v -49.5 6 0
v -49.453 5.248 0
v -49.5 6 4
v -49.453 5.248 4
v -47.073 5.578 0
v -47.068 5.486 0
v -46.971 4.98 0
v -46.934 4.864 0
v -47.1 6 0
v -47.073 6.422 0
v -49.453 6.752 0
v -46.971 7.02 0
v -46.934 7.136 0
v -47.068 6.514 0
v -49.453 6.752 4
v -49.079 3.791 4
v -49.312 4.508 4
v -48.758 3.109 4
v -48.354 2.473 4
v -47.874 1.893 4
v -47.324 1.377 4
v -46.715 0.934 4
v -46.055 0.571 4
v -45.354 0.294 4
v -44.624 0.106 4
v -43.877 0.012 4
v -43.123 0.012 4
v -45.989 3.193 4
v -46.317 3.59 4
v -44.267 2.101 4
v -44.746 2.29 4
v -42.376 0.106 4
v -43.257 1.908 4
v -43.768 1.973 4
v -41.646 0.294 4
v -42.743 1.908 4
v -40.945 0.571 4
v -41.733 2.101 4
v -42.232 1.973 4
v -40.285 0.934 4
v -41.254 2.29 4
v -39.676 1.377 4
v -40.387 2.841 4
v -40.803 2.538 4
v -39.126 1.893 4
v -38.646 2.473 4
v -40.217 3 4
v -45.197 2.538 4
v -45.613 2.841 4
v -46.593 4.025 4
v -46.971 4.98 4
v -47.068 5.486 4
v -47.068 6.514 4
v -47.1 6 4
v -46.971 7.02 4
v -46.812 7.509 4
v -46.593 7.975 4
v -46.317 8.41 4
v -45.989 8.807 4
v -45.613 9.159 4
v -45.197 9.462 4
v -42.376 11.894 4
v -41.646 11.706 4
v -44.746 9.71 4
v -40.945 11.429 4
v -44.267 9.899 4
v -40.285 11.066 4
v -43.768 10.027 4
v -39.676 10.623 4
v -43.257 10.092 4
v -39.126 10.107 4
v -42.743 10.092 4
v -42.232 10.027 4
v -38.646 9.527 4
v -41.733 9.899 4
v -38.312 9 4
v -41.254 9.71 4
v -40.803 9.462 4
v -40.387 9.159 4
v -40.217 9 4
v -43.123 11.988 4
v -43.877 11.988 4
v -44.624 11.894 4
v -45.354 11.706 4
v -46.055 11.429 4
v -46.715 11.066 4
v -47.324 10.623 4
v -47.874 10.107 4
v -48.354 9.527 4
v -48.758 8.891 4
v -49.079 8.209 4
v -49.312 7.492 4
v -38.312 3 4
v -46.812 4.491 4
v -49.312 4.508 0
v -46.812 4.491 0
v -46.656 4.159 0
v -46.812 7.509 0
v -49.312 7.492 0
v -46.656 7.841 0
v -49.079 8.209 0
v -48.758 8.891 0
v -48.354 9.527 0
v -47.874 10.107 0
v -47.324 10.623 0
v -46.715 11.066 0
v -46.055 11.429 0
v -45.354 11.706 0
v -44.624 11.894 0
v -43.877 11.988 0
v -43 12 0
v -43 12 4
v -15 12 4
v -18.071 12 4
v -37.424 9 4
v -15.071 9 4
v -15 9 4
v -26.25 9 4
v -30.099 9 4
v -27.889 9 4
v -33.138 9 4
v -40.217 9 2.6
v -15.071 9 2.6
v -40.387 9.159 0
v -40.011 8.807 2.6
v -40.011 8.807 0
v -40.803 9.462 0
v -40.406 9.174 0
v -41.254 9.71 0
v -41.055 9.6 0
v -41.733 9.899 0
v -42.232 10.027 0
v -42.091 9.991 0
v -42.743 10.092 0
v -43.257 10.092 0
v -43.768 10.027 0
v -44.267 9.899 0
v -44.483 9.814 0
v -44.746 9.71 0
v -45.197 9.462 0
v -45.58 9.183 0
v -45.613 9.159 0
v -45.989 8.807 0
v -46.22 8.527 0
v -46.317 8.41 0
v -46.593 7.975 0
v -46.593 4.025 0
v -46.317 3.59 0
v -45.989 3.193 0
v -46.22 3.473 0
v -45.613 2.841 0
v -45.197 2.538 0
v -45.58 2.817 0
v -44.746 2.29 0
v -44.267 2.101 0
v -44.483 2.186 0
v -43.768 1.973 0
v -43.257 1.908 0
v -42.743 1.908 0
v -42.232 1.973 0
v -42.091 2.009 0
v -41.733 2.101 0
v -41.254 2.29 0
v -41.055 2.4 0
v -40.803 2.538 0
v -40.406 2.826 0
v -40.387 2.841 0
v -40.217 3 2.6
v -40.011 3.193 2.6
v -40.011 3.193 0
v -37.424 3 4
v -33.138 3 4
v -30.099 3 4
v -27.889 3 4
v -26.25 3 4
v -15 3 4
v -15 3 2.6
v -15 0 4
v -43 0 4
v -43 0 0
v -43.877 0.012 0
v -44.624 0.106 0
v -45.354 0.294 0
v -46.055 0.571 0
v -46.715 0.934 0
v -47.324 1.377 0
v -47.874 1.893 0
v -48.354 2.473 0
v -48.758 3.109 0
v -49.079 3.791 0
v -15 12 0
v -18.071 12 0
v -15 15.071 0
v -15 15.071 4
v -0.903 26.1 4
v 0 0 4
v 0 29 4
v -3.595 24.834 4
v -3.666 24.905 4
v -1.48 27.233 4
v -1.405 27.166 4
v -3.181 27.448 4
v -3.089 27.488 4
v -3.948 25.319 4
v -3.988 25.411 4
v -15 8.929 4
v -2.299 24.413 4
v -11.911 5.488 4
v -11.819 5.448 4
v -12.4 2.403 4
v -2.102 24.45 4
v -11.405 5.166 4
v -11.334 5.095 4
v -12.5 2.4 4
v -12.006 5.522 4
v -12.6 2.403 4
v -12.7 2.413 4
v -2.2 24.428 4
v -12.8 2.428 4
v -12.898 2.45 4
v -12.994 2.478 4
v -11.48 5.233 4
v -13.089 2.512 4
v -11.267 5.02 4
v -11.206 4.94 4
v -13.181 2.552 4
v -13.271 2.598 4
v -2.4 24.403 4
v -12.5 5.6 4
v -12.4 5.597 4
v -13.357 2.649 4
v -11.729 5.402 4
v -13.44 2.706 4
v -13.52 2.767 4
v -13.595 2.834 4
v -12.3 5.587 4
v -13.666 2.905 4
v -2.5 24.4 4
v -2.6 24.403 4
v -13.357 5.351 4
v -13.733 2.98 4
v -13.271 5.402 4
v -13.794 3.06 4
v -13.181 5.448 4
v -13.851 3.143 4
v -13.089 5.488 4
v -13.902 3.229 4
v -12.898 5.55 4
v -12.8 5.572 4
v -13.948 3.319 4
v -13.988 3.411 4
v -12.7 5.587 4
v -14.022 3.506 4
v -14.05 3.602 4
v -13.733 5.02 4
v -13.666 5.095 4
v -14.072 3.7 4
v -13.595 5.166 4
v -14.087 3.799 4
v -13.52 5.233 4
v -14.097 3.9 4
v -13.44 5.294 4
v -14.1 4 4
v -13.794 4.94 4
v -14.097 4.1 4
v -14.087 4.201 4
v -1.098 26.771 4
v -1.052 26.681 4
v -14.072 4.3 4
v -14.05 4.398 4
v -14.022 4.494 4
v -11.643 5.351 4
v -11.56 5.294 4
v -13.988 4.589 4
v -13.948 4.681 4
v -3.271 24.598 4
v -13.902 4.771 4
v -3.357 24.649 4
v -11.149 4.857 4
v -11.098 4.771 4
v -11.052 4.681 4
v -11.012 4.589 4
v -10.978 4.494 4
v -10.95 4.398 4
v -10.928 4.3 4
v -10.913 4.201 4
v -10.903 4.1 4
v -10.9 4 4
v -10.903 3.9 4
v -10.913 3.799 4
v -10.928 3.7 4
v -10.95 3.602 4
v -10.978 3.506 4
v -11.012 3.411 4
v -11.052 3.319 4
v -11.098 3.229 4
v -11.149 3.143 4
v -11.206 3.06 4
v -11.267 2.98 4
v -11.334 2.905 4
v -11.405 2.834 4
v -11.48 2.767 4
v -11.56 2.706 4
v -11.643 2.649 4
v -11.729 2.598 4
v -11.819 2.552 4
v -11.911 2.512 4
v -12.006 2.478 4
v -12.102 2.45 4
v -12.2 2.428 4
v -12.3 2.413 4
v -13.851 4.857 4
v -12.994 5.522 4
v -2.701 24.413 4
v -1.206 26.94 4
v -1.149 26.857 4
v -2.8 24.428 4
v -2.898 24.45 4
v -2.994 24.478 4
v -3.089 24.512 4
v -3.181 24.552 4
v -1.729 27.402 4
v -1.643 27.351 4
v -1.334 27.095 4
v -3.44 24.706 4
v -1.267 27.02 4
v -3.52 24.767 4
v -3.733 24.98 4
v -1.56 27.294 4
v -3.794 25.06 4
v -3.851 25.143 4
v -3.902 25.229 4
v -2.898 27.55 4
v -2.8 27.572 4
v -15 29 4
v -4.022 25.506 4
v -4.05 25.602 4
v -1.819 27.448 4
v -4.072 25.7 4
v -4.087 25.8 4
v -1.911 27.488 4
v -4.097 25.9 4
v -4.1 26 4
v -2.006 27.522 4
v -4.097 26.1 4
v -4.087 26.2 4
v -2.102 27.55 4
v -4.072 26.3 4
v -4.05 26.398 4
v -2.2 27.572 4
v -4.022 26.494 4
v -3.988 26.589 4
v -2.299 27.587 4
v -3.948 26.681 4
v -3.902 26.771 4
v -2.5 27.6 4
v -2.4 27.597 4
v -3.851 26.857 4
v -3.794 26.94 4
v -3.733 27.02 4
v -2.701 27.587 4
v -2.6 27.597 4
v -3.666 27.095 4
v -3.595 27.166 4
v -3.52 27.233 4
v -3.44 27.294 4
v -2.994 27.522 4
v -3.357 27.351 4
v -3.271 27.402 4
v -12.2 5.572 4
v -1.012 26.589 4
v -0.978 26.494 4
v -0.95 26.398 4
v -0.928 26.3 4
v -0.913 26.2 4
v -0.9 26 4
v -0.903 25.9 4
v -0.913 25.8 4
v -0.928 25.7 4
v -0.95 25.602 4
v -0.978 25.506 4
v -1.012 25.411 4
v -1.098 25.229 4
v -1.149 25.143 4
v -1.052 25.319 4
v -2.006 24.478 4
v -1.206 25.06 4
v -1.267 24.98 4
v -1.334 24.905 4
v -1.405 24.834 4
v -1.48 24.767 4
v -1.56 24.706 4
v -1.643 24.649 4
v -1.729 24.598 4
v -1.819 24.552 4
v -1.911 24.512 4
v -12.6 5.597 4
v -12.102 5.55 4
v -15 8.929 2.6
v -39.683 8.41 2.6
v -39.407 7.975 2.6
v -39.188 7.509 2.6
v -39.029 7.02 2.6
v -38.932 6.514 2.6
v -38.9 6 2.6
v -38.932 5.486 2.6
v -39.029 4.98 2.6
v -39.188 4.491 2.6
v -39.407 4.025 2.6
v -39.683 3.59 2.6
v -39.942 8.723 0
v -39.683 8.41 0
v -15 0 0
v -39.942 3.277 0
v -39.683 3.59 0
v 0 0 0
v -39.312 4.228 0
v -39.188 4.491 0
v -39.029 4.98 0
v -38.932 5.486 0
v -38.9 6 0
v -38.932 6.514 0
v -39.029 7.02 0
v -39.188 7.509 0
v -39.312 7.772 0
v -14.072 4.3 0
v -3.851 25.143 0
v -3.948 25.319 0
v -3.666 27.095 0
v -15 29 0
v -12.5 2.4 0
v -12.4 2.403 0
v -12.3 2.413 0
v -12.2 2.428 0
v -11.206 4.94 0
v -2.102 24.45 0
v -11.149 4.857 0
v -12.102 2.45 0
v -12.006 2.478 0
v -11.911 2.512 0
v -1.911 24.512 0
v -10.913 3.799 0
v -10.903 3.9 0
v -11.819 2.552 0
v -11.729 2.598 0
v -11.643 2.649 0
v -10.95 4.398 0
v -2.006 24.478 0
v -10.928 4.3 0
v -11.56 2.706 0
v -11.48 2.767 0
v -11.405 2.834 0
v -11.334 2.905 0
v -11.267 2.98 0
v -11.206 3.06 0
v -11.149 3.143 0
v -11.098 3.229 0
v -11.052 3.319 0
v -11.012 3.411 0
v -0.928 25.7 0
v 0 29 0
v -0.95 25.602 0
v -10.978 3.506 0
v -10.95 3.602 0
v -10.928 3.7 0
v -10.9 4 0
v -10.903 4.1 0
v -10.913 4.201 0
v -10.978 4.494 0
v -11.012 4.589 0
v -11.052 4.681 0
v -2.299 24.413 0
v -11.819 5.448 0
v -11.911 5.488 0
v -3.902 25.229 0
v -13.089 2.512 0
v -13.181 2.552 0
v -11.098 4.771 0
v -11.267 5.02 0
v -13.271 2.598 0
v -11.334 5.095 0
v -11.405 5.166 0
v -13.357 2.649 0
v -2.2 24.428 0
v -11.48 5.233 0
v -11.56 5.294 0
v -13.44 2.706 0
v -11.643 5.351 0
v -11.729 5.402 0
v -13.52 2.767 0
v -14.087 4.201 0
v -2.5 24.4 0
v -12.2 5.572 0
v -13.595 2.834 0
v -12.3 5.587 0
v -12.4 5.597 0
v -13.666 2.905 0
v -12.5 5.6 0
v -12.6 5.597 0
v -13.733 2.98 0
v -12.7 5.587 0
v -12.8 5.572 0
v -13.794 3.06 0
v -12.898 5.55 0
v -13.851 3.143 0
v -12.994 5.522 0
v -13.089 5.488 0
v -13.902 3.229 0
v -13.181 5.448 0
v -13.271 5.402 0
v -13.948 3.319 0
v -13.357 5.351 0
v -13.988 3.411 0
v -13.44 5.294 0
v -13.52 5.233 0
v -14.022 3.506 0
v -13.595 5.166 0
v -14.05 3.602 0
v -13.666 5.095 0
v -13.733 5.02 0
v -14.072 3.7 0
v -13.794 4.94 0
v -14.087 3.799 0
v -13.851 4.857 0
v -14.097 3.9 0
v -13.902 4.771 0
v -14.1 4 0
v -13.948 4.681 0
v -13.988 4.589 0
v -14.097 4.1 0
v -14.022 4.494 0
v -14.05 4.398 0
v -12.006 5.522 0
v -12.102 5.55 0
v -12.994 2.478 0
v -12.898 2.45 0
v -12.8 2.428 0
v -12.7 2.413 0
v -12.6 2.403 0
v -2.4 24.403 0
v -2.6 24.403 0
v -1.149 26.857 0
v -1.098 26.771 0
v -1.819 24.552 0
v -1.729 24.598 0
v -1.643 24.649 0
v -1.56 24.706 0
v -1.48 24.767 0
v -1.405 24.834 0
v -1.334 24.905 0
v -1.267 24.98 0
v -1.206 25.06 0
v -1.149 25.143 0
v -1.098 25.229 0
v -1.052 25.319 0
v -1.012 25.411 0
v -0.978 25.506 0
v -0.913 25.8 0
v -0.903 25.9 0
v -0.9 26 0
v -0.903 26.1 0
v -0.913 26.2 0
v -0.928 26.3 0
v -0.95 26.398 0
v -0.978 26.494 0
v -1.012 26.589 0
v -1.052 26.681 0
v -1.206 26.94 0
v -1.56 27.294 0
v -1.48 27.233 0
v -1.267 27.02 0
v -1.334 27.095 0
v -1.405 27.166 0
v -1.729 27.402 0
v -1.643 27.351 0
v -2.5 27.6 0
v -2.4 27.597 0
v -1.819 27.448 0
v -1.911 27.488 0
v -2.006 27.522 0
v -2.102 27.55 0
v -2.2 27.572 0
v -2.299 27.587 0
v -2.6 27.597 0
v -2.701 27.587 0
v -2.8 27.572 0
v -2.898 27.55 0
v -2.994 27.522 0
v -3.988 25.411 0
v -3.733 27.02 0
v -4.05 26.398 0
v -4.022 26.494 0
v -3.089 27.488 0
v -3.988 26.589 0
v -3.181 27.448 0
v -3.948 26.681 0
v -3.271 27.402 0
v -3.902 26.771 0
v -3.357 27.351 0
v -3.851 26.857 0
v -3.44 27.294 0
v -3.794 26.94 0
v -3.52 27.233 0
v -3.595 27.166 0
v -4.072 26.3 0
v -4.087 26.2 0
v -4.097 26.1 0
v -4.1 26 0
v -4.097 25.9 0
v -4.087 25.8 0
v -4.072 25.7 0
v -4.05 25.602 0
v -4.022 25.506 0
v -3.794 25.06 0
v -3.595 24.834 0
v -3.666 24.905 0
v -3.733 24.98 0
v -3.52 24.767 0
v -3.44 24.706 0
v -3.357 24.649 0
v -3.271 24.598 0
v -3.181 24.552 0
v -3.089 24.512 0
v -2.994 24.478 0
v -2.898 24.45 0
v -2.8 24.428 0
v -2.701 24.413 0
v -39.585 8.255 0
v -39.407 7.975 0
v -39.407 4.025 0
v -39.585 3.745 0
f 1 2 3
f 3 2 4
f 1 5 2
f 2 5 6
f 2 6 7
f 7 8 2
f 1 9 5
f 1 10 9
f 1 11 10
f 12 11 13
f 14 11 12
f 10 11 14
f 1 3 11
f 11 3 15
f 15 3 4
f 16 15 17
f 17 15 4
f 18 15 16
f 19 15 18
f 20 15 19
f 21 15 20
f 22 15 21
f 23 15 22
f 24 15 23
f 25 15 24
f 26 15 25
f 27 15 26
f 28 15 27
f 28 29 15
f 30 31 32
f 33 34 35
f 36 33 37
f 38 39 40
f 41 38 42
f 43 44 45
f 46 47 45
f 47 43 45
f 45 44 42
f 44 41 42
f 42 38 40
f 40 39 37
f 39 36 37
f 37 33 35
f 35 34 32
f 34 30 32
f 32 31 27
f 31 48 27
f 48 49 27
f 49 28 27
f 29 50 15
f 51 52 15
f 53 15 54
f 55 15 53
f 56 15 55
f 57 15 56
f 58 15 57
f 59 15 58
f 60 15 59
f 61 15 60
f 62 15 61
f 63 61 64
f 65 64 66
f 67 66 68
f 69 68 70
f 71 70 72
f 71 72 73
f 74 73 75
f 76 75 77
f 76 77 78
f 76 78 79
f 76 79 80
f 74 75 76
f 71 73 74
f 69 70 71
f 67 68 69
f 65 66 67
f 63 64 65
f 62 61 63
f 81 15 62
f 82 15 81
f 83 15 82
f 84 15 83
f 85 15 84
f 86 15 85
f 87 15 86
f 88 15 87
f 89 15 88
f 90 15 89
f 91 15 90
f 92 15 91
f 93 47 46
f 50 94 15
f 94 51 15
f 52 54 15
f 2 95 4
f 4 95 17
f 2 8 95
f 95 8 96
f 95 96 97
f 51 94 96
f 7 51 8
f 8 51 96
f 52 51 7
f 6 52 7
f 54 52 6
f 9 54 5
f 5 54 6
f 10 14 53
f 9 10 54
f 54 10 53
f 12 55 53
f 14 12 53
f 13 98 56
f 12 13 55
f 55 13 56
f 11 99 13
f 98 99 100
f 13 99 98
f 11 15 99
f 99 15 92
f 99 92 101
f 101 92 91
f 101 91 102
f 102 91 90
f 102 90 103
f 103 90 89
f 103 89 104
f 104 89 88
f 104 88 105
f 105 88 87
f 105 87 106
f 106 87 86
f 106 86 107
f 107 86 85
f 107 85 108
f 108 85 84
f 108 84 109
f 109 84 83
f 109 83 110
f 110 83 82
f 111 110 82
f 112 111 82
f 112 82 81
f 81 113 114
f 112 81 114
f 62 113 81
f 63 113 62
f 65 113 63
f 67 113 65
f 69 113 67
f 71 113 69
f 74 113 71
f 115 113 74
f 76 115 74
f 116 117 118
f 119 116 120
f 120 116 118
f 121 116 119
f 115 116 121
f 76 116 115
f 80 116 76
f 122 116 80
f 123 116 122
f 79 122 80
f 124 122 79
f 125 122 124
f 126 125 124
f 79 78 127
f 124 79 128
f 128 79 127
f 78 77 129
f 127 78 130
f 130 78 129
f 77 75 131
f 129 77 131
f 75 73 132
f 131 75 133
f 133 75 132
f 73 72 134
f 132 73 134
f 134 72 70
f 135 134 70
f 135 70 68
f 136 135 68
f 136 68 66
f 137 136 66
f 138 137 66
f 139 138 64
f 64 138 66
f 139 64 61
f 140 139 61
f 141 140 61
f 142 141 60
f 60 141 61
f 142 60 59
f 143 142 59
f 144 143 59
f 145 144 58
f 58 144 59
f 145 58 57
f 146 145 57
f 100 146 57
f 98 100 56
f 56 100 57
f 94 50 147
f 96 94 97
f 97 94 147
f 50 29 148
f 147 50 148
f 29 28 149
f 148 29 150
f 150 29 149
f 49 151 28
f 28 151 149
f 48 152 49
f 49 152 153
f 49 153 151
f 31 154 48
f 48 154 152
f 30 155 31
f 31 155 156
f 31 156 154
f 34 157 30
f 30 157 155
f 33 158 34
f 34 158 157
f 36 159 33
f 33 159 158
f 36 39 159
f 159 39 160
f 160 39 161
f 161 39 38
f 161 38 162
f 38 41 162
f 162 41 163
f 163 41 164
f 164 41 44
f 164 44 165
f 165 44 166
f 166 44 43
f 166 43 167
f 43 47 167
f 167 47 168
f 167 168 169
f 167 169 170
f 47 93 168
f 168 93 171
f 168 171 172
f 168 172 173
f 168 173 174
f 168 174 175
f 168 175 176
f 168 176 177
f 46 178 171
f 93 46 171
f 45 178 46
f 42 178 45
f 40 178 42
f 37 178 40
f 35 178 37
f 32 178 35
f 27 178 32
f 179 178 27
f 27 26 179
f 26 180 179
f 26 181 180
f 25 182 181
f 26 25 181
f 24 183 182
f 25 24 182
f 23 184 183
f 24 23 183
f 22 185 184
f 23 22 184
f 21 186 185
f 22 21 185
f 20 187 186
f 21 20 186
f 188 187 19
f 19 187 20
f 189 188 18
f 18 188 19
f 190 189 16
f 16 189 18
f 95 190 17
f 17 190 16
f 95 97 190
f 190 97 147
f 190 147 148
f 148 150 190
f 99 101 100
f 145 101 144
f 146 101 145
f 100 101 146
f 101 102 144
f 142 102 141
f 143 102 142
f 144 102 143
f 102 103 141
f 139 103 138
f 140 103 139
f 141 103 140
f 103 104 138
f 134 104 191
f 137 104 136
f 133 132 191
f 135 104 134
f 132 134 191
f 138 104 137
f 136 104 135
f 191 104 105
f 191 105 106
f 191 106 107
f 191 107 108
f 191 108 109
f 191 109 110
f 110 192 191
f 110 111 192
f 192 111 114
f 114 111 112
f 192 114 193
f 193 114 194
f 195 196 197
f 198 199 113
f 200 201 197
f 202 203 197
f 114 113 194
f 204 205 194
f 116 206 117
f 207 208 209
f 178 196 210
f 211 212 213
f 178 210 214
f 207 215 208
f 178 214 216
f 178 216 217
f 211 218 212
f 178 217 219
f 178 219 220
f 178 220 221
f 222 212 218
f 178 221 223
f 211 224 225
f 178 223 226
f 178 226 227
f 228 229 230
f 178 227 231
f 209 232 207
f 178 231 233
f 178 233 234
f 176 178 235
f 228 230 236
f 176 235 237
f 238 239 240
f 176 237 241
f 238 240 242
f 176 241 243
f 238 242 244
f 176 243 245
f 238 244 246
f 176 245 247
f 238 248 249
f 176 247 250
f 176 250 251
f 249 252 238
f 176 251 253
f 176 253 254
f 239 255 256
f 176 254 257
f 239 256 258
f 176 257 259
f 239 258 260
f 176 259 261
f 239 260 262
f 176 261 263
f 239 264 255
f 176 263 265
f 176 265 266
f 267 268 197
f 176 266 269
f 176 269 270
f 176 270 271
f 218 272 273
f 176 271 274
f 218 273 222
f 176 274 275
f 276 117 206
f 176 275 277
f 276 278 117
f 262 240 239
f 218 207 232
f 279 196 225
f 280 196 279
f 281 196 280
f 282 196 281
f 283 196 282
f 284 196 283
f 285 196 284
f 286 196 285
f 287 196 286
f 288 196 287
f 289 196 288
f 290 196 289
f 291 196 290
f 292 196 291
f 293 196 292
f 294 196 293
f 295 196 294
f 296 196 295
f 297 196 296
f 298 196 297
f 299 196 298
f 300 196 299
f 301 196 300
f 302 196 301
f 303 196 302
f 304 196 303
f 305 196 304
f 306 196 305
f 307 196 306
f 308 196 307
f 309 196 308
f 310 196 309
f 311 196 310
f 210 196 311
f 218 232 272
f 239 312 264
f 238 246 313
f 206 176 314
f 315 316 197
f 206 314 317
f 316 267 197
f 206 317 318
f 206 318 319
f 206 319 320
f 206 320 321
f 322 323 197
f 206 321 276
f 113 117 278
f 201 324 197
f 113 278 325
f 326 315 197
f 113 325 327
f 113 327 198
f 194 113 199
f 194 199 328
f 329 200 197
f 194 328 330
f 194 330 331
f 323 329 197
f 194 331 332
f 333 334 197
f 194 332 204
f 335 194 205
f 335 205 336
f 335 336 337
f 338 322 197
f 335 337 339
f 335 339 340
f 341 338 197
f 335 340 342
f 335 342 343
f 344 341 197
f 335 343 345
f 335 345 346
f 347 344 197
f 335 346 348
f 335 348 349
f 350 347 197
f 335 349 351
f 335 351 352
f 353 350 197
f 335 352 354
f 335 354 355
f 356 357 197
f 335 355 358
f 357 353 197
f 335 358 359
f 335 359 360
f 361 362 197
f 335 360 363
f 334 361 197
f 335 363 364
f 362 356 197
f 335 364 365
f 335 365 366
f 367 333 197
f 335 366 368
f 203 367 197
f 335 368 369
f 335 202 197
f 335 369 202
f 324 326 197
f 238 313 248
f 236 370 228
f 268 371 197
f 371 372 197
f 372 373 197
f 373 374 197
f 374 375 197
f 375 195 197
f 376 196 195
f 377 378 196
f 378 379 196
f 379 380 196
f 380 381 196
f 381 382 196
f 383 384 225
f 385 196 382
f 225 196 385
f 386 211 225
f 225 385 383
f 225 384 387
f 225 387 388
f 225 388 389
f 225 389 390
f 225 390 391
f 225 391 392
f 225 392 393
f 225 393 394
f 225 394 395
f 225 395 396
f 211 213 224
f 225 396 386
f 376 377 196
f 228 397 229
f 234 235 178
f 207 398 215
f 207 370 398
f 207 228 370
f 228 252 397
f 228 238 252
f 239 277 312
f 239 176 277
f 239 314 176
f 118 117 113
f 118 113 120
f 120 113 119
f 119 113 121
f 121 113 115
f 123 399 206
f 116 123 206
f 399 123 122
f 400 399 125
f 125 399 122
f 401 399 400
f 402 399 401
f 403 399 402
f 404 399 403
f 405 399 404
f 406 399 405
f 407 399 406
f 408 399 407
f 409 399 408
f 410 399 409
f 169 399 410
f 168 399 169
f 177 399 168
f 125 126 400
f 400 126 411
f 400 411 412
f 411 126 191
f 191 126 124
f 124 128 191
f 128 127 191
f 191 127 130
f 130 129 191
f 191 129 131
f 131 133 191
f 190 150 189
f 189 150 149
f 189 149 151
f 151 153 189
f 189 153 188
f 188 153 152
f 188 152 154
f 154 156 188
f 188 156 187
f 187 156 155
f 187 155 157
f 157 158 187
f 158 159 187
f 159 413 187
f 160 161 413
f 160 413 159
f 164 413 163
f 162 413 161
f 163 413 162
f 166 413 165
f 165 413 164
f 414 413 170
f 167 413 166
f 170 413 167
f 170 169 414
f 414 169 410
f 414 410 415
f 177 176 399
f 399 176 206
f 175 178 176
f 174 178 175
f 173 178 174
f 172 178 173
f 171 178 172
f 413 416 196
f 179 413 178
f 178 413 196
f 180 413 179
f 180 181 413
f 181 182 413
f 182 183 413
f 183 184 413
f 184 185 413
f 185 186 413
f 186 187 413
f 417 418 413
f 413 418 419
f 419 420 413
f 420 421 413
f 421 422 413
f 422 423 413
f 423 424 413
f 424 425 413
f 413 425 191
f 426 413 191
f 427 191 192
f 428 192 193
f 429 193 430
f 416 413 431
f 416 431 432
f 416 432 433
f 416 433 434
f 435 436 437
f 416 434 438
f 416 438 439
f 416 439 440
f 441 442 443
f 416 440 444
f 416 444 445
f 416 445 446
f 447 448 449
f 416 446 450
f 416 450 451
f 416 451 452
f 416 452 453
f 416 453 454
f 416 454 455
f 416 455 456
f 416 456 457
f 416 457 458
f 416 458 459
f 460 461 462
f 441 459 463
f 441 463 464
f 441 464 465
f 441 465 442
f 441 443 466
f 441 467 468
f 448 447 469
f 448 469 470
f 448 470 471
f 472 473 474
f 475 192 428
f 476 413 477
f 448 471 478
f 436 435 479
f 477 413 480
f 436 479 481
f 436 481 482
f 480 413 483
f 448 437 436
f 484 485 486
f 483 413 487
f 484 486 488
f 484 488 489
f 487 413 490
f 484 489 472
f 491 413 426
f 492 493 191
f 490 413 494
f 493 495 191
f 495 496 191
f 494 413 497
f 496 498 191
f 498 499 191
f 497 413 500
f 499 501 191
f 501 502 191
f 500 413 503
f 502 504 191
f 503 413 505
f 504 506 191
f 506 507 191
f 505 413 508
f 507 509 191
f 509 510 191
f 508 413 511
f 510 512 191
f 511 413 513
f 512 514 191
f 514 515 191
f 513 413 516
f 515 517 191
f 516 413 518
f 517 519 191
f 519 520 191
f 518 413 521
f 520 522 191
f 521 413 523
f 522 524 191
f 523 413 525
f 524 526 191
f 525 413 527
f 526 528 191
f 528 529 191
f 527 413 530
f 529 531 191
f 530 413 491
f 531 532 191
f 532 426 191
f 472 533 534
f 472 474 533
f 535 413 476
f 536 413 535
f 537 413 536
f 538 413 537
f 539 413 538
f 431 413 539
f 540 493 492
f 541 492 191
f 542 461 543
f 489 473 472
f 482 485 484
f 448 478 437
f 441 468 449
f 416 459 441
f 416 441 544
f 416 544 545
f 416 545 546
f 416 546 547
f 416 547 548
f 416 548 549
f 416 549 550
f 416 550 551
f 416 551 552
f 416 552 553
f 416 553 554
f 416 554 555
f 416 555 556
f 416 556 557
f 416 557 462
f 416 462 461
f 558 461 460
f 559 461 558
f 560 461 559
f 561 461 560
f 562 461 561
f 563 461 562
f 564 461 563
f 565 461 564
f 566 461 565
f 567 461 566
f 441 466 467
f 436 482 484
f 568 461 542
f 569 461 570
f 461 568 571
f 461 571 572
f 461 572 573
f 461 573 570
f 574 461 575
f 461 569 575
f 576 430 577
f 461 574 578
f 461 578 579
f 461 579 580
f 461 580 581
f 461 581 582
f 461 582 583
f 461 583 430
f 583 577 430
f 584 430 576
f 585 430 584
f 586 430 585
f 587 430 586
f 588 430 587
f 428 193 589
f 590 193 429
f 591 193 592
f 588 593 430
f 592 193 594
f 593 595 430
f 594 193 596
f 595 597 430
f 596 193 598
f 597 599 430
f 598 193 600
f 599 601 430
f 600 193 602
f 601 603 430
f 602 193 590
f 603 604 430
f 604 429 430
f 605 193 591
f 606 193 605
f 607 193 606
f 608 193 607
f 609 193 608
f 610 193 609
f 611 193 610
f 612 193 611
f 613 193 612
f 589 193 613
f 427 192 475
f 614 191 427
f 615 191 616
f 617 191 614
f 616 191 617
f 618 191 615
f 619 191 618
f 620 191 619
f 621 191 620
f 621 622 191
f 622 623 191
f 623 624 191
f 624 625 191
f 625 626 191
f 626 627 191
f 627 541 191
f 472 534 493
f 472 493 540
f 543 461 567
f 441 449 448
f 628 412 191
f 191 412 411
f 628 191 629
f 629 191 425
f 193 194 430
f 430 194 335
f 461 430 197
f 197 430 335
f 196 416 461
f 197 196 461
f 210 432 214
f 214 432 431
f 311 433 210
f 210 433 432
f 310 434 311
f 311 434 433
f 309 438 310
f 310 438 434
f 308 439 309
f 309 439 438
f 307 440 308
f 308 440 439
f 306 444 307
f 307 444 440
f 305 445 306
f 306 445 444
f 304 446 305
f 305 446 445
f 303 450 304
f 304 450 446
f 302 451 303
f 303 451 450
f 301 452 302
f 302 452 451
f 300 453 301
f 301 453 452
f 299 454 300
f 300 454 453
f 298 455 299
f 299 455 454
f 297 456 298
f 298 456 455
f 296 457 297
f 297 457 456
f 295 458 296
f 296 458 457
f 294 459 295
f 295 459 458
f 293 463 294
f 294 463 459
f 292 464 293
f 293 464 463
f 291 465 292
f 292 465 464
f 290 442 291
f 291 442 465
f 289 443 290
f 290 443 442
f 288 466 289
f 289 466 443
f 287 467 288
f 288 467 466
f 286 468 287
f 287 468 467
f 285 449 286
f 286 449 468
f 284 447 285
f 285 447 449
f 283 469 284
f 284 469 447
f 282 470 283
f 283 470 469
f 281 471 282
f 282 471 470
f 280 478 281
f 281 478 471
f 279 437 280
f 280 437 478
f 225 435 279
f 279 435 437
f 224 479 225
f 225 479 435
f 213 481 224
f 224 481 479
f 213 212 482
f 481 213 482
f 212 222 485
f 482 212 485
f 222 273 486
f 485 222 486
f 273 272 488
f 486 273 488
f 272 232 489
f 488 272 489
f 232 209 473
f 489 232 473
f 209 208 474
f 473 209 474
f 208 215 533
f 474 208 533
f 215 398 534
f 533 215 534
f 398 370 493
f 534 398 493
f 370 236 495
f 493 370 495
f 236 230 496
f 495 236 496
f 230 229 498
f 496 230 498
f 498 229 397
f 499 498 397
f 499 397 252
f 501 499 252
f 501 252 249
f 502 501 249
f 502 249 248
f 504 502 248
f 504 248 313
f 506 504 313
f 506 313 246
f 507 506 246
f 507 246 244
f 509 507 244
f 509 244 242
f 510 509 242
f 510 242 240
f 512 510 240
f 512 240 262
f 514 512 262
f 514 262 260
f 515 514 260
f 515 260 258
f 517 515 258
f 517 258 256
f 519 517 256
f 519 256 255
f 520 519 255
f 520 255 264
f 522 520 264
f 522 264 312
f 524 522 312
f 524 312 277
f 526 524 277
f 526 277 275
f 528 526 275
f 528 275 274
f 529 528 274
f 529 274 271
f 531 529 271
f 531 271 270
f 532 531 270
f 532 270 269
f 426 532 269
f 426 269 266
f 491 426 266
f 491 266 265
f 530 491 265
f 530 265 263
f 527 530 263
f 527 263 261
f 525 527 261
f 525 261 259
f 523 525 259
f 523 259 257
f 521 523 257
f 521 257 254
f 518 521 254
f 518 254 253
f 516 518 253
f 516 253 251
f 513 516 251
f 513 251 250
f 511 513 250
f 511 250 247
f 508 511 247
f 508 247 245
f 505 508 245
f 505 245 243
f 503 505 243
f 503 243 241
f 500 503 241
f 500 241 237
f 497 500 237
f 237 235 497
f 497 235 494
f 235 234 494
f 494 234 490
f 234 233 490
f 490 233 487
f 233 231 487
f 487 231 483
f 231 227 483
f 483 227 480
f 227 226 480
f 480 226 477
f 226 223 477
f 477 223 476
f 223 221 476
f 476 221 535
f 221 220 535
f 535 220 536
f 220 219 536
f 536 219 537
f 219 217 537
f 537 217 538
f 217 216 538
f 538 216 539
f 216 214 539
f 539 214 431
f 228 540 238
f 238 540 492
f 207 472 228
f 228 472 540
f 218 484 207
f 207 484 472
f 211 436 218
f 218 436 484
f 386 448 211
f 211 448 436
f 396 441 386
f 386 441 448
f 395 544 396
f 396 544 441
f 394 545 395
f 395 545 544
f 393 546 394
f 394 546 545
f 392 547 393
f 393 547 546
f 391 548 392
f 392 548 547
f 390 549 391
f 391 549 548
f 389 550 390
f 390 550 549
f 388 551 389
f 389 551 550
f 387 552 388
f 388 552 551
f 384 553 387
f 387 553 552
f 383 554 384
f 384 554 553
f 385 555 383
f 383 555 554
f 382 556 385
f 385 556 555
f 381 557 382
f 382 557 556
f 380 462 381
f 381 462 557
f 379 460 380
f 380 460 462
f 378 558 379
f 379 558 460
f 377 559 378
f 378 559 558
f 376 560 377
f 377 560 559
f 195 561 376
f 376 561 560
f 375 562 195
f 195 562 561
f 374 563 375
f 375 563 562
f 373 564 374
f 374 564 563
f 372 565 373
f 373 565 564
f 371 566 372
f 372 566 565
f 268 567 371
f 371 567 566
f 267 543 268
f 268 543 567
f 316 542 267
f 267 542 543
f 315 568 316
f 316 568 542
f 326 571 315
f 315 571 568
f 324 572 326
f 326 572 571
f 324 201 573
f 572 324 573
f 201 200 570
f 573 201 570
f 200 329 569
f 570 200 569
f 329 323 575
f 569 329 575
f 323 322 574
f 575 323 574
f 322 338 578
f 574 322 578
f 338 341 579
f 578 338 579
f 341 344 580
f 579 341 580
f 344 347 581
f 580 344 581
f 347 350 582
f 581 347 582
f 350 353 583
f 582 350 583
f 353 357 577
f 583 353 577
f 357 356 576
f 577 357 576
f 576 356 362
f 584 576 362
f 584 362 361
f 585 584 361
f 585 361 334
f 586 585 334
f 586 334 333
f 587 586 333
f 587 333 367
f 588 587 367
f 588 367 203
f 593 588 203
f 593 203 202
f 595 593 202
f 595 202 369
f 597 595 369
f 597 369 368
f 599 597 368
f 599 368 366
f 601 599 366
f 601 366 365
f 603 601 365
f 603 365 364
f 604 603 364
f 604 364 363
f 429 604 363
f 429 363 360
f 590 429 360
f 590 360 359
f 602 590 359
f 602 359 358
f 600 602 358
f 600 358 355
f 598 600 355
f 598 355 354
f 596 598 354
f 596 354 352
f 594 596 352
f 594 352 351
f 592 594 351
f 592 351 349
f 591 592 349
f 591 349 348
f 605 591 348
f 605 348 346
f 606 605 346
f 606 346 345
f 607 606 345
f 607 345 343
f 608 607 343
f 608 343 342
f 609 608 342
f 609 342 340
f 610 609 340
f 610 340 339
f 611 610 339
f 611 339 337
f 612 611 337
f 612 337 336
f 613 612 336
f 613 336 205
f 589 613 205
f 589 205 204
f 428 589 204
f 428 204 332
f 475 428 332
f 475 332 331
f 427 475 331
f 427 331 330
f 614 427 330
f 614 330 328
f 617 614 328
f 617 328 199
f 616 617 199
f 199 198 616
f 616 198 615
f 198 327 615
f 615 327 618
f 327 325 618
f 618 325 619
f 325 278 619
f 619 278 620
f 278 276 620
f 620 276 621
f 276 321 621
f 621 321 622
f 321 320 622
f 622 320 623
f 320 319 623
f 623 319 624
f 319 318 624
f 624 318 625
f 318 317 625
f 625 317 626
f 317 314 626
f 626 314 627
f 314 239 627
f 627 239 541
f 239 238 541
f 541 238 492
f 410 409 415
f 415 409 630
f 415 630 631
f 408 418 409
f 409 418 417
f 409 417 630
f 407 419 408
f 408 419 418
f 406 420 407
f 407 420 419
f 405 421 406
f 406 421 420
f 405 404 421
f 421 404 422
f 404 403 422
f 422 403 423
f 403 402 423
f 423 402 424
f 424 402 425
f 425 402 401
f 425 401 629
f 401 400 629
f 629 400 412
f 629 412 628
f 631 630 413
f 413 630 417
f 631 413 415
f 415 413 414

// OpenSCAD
//////////////////////////////////////////////////////////////////////////////////////////////////
// Created on 12/13/2013 by Stephen Castello
// Last update: 12/21/2013
//////////////////////////////////////////////////////////////////////////////////////////////////
// variables
//////////////////////////////////////////////////////////////////////////////////////////////////
Z_Rod_dia=10;				// diameter of Z rod
Screw_dia=3.2;				// clamp screw diameter
Screw_Thread_dia=2.5;		// screw hole diameter to make a 3mm threaded hole
Switch_ht=15;				// height of holder
Switch_thk = 4;				// thickness of holder
Switch_hole_sep=22;		// distance between holes for switch (19 for mechanical endstop v1.2)
Switch_hole_offset = 10;		// switch hole offest (mech endstop v1.2 doesn't have one)
Nut_wrench_size = 5.5;		// wrench size of nut
Nut_depth = 2.3;			// thickness of nut
Nylok_depth = 4;			// thickness of nylok nut
Lever_wd = 12;				// width of lever
Lever_ht = 33;				// lever length
Servo_dia = 8.2;			// outside diameter of servo lever
//////////////////////////////////////////////////////////////////////////////////////////////////
// make the parts
//////////////////////////////////////////////////////////////////////////////////////////////////

rotate([0,-90,0]) {
 	switch_side();
	lever();
}

//////////////////////////////////////////////////////////////////////////////////////////////////
// modules for each part
//////////////////////////////////////////////////////////////////////////////////////////////////

module switch_side(Switch_Only) { // riser for switch
	difference() {
		difference() {
			difference() {
				cube([Switch_thk,29,Switch_ht],false);
				// screw holes for switch
				rotate(a=[0,90,0]) {		
					translate([-(Switch_ht-2.5), 4, 0]) {
						cylinder(h = 11, r = Screw_dia/2, center = false, $fn=100);
					}
				}
				rotate(a=[0,90,0]) {
					translate(v = [-(Switch_ht-2.5)+Switch_hole_offset, 4+Switch_hole_sep, 0]) {
					cylinder(h = 11, r = Screw_dia/2, center = false, $fn=100);
					}
				}
			}
		}
	}
}

//////////////////////////////////////////////////////////////////////////////////////////////////////////////
module lever() {  // servo lever
	difference() {
		hull() {
			translate([0,0,15]) cube([Switch_thk,Lever_wd,Lever_ht-5],false); // lever with a rounded end
			translate([0,6,Lever_ht + 10.5]) rotate([0,90,0]) cylinder(h=Switch_thk,r=Lever_wd/2,$fn=50);
		}
		translate([2.6,3,15]) cube([Switch_thk/2,Lever_wd/2,Lever_ht-5],false); // groove
		translate([-5,6,Lever_ht + 10]) rotate([0,90,0]) cylinder(h=20,r=Servo_dia/2,$fn=50); // servo arm hole
		//rotate(a=[0,90,0]) {	// repeated from switch_side	
		//	translate([-(Switch_ht-2.5), 4, 0]) {
		//		cylinder(h = 11, r = Screw_dia/2, center = false, $fn=100);
		//	}
		//}
 	}
	translate([0,12,11]) rotate([45,0,0]) cube([Switch_thk,5,5],false); // gusset
}

//////////////////////end of Z stop servo mount.scad /////////////////////////////////////////////////
